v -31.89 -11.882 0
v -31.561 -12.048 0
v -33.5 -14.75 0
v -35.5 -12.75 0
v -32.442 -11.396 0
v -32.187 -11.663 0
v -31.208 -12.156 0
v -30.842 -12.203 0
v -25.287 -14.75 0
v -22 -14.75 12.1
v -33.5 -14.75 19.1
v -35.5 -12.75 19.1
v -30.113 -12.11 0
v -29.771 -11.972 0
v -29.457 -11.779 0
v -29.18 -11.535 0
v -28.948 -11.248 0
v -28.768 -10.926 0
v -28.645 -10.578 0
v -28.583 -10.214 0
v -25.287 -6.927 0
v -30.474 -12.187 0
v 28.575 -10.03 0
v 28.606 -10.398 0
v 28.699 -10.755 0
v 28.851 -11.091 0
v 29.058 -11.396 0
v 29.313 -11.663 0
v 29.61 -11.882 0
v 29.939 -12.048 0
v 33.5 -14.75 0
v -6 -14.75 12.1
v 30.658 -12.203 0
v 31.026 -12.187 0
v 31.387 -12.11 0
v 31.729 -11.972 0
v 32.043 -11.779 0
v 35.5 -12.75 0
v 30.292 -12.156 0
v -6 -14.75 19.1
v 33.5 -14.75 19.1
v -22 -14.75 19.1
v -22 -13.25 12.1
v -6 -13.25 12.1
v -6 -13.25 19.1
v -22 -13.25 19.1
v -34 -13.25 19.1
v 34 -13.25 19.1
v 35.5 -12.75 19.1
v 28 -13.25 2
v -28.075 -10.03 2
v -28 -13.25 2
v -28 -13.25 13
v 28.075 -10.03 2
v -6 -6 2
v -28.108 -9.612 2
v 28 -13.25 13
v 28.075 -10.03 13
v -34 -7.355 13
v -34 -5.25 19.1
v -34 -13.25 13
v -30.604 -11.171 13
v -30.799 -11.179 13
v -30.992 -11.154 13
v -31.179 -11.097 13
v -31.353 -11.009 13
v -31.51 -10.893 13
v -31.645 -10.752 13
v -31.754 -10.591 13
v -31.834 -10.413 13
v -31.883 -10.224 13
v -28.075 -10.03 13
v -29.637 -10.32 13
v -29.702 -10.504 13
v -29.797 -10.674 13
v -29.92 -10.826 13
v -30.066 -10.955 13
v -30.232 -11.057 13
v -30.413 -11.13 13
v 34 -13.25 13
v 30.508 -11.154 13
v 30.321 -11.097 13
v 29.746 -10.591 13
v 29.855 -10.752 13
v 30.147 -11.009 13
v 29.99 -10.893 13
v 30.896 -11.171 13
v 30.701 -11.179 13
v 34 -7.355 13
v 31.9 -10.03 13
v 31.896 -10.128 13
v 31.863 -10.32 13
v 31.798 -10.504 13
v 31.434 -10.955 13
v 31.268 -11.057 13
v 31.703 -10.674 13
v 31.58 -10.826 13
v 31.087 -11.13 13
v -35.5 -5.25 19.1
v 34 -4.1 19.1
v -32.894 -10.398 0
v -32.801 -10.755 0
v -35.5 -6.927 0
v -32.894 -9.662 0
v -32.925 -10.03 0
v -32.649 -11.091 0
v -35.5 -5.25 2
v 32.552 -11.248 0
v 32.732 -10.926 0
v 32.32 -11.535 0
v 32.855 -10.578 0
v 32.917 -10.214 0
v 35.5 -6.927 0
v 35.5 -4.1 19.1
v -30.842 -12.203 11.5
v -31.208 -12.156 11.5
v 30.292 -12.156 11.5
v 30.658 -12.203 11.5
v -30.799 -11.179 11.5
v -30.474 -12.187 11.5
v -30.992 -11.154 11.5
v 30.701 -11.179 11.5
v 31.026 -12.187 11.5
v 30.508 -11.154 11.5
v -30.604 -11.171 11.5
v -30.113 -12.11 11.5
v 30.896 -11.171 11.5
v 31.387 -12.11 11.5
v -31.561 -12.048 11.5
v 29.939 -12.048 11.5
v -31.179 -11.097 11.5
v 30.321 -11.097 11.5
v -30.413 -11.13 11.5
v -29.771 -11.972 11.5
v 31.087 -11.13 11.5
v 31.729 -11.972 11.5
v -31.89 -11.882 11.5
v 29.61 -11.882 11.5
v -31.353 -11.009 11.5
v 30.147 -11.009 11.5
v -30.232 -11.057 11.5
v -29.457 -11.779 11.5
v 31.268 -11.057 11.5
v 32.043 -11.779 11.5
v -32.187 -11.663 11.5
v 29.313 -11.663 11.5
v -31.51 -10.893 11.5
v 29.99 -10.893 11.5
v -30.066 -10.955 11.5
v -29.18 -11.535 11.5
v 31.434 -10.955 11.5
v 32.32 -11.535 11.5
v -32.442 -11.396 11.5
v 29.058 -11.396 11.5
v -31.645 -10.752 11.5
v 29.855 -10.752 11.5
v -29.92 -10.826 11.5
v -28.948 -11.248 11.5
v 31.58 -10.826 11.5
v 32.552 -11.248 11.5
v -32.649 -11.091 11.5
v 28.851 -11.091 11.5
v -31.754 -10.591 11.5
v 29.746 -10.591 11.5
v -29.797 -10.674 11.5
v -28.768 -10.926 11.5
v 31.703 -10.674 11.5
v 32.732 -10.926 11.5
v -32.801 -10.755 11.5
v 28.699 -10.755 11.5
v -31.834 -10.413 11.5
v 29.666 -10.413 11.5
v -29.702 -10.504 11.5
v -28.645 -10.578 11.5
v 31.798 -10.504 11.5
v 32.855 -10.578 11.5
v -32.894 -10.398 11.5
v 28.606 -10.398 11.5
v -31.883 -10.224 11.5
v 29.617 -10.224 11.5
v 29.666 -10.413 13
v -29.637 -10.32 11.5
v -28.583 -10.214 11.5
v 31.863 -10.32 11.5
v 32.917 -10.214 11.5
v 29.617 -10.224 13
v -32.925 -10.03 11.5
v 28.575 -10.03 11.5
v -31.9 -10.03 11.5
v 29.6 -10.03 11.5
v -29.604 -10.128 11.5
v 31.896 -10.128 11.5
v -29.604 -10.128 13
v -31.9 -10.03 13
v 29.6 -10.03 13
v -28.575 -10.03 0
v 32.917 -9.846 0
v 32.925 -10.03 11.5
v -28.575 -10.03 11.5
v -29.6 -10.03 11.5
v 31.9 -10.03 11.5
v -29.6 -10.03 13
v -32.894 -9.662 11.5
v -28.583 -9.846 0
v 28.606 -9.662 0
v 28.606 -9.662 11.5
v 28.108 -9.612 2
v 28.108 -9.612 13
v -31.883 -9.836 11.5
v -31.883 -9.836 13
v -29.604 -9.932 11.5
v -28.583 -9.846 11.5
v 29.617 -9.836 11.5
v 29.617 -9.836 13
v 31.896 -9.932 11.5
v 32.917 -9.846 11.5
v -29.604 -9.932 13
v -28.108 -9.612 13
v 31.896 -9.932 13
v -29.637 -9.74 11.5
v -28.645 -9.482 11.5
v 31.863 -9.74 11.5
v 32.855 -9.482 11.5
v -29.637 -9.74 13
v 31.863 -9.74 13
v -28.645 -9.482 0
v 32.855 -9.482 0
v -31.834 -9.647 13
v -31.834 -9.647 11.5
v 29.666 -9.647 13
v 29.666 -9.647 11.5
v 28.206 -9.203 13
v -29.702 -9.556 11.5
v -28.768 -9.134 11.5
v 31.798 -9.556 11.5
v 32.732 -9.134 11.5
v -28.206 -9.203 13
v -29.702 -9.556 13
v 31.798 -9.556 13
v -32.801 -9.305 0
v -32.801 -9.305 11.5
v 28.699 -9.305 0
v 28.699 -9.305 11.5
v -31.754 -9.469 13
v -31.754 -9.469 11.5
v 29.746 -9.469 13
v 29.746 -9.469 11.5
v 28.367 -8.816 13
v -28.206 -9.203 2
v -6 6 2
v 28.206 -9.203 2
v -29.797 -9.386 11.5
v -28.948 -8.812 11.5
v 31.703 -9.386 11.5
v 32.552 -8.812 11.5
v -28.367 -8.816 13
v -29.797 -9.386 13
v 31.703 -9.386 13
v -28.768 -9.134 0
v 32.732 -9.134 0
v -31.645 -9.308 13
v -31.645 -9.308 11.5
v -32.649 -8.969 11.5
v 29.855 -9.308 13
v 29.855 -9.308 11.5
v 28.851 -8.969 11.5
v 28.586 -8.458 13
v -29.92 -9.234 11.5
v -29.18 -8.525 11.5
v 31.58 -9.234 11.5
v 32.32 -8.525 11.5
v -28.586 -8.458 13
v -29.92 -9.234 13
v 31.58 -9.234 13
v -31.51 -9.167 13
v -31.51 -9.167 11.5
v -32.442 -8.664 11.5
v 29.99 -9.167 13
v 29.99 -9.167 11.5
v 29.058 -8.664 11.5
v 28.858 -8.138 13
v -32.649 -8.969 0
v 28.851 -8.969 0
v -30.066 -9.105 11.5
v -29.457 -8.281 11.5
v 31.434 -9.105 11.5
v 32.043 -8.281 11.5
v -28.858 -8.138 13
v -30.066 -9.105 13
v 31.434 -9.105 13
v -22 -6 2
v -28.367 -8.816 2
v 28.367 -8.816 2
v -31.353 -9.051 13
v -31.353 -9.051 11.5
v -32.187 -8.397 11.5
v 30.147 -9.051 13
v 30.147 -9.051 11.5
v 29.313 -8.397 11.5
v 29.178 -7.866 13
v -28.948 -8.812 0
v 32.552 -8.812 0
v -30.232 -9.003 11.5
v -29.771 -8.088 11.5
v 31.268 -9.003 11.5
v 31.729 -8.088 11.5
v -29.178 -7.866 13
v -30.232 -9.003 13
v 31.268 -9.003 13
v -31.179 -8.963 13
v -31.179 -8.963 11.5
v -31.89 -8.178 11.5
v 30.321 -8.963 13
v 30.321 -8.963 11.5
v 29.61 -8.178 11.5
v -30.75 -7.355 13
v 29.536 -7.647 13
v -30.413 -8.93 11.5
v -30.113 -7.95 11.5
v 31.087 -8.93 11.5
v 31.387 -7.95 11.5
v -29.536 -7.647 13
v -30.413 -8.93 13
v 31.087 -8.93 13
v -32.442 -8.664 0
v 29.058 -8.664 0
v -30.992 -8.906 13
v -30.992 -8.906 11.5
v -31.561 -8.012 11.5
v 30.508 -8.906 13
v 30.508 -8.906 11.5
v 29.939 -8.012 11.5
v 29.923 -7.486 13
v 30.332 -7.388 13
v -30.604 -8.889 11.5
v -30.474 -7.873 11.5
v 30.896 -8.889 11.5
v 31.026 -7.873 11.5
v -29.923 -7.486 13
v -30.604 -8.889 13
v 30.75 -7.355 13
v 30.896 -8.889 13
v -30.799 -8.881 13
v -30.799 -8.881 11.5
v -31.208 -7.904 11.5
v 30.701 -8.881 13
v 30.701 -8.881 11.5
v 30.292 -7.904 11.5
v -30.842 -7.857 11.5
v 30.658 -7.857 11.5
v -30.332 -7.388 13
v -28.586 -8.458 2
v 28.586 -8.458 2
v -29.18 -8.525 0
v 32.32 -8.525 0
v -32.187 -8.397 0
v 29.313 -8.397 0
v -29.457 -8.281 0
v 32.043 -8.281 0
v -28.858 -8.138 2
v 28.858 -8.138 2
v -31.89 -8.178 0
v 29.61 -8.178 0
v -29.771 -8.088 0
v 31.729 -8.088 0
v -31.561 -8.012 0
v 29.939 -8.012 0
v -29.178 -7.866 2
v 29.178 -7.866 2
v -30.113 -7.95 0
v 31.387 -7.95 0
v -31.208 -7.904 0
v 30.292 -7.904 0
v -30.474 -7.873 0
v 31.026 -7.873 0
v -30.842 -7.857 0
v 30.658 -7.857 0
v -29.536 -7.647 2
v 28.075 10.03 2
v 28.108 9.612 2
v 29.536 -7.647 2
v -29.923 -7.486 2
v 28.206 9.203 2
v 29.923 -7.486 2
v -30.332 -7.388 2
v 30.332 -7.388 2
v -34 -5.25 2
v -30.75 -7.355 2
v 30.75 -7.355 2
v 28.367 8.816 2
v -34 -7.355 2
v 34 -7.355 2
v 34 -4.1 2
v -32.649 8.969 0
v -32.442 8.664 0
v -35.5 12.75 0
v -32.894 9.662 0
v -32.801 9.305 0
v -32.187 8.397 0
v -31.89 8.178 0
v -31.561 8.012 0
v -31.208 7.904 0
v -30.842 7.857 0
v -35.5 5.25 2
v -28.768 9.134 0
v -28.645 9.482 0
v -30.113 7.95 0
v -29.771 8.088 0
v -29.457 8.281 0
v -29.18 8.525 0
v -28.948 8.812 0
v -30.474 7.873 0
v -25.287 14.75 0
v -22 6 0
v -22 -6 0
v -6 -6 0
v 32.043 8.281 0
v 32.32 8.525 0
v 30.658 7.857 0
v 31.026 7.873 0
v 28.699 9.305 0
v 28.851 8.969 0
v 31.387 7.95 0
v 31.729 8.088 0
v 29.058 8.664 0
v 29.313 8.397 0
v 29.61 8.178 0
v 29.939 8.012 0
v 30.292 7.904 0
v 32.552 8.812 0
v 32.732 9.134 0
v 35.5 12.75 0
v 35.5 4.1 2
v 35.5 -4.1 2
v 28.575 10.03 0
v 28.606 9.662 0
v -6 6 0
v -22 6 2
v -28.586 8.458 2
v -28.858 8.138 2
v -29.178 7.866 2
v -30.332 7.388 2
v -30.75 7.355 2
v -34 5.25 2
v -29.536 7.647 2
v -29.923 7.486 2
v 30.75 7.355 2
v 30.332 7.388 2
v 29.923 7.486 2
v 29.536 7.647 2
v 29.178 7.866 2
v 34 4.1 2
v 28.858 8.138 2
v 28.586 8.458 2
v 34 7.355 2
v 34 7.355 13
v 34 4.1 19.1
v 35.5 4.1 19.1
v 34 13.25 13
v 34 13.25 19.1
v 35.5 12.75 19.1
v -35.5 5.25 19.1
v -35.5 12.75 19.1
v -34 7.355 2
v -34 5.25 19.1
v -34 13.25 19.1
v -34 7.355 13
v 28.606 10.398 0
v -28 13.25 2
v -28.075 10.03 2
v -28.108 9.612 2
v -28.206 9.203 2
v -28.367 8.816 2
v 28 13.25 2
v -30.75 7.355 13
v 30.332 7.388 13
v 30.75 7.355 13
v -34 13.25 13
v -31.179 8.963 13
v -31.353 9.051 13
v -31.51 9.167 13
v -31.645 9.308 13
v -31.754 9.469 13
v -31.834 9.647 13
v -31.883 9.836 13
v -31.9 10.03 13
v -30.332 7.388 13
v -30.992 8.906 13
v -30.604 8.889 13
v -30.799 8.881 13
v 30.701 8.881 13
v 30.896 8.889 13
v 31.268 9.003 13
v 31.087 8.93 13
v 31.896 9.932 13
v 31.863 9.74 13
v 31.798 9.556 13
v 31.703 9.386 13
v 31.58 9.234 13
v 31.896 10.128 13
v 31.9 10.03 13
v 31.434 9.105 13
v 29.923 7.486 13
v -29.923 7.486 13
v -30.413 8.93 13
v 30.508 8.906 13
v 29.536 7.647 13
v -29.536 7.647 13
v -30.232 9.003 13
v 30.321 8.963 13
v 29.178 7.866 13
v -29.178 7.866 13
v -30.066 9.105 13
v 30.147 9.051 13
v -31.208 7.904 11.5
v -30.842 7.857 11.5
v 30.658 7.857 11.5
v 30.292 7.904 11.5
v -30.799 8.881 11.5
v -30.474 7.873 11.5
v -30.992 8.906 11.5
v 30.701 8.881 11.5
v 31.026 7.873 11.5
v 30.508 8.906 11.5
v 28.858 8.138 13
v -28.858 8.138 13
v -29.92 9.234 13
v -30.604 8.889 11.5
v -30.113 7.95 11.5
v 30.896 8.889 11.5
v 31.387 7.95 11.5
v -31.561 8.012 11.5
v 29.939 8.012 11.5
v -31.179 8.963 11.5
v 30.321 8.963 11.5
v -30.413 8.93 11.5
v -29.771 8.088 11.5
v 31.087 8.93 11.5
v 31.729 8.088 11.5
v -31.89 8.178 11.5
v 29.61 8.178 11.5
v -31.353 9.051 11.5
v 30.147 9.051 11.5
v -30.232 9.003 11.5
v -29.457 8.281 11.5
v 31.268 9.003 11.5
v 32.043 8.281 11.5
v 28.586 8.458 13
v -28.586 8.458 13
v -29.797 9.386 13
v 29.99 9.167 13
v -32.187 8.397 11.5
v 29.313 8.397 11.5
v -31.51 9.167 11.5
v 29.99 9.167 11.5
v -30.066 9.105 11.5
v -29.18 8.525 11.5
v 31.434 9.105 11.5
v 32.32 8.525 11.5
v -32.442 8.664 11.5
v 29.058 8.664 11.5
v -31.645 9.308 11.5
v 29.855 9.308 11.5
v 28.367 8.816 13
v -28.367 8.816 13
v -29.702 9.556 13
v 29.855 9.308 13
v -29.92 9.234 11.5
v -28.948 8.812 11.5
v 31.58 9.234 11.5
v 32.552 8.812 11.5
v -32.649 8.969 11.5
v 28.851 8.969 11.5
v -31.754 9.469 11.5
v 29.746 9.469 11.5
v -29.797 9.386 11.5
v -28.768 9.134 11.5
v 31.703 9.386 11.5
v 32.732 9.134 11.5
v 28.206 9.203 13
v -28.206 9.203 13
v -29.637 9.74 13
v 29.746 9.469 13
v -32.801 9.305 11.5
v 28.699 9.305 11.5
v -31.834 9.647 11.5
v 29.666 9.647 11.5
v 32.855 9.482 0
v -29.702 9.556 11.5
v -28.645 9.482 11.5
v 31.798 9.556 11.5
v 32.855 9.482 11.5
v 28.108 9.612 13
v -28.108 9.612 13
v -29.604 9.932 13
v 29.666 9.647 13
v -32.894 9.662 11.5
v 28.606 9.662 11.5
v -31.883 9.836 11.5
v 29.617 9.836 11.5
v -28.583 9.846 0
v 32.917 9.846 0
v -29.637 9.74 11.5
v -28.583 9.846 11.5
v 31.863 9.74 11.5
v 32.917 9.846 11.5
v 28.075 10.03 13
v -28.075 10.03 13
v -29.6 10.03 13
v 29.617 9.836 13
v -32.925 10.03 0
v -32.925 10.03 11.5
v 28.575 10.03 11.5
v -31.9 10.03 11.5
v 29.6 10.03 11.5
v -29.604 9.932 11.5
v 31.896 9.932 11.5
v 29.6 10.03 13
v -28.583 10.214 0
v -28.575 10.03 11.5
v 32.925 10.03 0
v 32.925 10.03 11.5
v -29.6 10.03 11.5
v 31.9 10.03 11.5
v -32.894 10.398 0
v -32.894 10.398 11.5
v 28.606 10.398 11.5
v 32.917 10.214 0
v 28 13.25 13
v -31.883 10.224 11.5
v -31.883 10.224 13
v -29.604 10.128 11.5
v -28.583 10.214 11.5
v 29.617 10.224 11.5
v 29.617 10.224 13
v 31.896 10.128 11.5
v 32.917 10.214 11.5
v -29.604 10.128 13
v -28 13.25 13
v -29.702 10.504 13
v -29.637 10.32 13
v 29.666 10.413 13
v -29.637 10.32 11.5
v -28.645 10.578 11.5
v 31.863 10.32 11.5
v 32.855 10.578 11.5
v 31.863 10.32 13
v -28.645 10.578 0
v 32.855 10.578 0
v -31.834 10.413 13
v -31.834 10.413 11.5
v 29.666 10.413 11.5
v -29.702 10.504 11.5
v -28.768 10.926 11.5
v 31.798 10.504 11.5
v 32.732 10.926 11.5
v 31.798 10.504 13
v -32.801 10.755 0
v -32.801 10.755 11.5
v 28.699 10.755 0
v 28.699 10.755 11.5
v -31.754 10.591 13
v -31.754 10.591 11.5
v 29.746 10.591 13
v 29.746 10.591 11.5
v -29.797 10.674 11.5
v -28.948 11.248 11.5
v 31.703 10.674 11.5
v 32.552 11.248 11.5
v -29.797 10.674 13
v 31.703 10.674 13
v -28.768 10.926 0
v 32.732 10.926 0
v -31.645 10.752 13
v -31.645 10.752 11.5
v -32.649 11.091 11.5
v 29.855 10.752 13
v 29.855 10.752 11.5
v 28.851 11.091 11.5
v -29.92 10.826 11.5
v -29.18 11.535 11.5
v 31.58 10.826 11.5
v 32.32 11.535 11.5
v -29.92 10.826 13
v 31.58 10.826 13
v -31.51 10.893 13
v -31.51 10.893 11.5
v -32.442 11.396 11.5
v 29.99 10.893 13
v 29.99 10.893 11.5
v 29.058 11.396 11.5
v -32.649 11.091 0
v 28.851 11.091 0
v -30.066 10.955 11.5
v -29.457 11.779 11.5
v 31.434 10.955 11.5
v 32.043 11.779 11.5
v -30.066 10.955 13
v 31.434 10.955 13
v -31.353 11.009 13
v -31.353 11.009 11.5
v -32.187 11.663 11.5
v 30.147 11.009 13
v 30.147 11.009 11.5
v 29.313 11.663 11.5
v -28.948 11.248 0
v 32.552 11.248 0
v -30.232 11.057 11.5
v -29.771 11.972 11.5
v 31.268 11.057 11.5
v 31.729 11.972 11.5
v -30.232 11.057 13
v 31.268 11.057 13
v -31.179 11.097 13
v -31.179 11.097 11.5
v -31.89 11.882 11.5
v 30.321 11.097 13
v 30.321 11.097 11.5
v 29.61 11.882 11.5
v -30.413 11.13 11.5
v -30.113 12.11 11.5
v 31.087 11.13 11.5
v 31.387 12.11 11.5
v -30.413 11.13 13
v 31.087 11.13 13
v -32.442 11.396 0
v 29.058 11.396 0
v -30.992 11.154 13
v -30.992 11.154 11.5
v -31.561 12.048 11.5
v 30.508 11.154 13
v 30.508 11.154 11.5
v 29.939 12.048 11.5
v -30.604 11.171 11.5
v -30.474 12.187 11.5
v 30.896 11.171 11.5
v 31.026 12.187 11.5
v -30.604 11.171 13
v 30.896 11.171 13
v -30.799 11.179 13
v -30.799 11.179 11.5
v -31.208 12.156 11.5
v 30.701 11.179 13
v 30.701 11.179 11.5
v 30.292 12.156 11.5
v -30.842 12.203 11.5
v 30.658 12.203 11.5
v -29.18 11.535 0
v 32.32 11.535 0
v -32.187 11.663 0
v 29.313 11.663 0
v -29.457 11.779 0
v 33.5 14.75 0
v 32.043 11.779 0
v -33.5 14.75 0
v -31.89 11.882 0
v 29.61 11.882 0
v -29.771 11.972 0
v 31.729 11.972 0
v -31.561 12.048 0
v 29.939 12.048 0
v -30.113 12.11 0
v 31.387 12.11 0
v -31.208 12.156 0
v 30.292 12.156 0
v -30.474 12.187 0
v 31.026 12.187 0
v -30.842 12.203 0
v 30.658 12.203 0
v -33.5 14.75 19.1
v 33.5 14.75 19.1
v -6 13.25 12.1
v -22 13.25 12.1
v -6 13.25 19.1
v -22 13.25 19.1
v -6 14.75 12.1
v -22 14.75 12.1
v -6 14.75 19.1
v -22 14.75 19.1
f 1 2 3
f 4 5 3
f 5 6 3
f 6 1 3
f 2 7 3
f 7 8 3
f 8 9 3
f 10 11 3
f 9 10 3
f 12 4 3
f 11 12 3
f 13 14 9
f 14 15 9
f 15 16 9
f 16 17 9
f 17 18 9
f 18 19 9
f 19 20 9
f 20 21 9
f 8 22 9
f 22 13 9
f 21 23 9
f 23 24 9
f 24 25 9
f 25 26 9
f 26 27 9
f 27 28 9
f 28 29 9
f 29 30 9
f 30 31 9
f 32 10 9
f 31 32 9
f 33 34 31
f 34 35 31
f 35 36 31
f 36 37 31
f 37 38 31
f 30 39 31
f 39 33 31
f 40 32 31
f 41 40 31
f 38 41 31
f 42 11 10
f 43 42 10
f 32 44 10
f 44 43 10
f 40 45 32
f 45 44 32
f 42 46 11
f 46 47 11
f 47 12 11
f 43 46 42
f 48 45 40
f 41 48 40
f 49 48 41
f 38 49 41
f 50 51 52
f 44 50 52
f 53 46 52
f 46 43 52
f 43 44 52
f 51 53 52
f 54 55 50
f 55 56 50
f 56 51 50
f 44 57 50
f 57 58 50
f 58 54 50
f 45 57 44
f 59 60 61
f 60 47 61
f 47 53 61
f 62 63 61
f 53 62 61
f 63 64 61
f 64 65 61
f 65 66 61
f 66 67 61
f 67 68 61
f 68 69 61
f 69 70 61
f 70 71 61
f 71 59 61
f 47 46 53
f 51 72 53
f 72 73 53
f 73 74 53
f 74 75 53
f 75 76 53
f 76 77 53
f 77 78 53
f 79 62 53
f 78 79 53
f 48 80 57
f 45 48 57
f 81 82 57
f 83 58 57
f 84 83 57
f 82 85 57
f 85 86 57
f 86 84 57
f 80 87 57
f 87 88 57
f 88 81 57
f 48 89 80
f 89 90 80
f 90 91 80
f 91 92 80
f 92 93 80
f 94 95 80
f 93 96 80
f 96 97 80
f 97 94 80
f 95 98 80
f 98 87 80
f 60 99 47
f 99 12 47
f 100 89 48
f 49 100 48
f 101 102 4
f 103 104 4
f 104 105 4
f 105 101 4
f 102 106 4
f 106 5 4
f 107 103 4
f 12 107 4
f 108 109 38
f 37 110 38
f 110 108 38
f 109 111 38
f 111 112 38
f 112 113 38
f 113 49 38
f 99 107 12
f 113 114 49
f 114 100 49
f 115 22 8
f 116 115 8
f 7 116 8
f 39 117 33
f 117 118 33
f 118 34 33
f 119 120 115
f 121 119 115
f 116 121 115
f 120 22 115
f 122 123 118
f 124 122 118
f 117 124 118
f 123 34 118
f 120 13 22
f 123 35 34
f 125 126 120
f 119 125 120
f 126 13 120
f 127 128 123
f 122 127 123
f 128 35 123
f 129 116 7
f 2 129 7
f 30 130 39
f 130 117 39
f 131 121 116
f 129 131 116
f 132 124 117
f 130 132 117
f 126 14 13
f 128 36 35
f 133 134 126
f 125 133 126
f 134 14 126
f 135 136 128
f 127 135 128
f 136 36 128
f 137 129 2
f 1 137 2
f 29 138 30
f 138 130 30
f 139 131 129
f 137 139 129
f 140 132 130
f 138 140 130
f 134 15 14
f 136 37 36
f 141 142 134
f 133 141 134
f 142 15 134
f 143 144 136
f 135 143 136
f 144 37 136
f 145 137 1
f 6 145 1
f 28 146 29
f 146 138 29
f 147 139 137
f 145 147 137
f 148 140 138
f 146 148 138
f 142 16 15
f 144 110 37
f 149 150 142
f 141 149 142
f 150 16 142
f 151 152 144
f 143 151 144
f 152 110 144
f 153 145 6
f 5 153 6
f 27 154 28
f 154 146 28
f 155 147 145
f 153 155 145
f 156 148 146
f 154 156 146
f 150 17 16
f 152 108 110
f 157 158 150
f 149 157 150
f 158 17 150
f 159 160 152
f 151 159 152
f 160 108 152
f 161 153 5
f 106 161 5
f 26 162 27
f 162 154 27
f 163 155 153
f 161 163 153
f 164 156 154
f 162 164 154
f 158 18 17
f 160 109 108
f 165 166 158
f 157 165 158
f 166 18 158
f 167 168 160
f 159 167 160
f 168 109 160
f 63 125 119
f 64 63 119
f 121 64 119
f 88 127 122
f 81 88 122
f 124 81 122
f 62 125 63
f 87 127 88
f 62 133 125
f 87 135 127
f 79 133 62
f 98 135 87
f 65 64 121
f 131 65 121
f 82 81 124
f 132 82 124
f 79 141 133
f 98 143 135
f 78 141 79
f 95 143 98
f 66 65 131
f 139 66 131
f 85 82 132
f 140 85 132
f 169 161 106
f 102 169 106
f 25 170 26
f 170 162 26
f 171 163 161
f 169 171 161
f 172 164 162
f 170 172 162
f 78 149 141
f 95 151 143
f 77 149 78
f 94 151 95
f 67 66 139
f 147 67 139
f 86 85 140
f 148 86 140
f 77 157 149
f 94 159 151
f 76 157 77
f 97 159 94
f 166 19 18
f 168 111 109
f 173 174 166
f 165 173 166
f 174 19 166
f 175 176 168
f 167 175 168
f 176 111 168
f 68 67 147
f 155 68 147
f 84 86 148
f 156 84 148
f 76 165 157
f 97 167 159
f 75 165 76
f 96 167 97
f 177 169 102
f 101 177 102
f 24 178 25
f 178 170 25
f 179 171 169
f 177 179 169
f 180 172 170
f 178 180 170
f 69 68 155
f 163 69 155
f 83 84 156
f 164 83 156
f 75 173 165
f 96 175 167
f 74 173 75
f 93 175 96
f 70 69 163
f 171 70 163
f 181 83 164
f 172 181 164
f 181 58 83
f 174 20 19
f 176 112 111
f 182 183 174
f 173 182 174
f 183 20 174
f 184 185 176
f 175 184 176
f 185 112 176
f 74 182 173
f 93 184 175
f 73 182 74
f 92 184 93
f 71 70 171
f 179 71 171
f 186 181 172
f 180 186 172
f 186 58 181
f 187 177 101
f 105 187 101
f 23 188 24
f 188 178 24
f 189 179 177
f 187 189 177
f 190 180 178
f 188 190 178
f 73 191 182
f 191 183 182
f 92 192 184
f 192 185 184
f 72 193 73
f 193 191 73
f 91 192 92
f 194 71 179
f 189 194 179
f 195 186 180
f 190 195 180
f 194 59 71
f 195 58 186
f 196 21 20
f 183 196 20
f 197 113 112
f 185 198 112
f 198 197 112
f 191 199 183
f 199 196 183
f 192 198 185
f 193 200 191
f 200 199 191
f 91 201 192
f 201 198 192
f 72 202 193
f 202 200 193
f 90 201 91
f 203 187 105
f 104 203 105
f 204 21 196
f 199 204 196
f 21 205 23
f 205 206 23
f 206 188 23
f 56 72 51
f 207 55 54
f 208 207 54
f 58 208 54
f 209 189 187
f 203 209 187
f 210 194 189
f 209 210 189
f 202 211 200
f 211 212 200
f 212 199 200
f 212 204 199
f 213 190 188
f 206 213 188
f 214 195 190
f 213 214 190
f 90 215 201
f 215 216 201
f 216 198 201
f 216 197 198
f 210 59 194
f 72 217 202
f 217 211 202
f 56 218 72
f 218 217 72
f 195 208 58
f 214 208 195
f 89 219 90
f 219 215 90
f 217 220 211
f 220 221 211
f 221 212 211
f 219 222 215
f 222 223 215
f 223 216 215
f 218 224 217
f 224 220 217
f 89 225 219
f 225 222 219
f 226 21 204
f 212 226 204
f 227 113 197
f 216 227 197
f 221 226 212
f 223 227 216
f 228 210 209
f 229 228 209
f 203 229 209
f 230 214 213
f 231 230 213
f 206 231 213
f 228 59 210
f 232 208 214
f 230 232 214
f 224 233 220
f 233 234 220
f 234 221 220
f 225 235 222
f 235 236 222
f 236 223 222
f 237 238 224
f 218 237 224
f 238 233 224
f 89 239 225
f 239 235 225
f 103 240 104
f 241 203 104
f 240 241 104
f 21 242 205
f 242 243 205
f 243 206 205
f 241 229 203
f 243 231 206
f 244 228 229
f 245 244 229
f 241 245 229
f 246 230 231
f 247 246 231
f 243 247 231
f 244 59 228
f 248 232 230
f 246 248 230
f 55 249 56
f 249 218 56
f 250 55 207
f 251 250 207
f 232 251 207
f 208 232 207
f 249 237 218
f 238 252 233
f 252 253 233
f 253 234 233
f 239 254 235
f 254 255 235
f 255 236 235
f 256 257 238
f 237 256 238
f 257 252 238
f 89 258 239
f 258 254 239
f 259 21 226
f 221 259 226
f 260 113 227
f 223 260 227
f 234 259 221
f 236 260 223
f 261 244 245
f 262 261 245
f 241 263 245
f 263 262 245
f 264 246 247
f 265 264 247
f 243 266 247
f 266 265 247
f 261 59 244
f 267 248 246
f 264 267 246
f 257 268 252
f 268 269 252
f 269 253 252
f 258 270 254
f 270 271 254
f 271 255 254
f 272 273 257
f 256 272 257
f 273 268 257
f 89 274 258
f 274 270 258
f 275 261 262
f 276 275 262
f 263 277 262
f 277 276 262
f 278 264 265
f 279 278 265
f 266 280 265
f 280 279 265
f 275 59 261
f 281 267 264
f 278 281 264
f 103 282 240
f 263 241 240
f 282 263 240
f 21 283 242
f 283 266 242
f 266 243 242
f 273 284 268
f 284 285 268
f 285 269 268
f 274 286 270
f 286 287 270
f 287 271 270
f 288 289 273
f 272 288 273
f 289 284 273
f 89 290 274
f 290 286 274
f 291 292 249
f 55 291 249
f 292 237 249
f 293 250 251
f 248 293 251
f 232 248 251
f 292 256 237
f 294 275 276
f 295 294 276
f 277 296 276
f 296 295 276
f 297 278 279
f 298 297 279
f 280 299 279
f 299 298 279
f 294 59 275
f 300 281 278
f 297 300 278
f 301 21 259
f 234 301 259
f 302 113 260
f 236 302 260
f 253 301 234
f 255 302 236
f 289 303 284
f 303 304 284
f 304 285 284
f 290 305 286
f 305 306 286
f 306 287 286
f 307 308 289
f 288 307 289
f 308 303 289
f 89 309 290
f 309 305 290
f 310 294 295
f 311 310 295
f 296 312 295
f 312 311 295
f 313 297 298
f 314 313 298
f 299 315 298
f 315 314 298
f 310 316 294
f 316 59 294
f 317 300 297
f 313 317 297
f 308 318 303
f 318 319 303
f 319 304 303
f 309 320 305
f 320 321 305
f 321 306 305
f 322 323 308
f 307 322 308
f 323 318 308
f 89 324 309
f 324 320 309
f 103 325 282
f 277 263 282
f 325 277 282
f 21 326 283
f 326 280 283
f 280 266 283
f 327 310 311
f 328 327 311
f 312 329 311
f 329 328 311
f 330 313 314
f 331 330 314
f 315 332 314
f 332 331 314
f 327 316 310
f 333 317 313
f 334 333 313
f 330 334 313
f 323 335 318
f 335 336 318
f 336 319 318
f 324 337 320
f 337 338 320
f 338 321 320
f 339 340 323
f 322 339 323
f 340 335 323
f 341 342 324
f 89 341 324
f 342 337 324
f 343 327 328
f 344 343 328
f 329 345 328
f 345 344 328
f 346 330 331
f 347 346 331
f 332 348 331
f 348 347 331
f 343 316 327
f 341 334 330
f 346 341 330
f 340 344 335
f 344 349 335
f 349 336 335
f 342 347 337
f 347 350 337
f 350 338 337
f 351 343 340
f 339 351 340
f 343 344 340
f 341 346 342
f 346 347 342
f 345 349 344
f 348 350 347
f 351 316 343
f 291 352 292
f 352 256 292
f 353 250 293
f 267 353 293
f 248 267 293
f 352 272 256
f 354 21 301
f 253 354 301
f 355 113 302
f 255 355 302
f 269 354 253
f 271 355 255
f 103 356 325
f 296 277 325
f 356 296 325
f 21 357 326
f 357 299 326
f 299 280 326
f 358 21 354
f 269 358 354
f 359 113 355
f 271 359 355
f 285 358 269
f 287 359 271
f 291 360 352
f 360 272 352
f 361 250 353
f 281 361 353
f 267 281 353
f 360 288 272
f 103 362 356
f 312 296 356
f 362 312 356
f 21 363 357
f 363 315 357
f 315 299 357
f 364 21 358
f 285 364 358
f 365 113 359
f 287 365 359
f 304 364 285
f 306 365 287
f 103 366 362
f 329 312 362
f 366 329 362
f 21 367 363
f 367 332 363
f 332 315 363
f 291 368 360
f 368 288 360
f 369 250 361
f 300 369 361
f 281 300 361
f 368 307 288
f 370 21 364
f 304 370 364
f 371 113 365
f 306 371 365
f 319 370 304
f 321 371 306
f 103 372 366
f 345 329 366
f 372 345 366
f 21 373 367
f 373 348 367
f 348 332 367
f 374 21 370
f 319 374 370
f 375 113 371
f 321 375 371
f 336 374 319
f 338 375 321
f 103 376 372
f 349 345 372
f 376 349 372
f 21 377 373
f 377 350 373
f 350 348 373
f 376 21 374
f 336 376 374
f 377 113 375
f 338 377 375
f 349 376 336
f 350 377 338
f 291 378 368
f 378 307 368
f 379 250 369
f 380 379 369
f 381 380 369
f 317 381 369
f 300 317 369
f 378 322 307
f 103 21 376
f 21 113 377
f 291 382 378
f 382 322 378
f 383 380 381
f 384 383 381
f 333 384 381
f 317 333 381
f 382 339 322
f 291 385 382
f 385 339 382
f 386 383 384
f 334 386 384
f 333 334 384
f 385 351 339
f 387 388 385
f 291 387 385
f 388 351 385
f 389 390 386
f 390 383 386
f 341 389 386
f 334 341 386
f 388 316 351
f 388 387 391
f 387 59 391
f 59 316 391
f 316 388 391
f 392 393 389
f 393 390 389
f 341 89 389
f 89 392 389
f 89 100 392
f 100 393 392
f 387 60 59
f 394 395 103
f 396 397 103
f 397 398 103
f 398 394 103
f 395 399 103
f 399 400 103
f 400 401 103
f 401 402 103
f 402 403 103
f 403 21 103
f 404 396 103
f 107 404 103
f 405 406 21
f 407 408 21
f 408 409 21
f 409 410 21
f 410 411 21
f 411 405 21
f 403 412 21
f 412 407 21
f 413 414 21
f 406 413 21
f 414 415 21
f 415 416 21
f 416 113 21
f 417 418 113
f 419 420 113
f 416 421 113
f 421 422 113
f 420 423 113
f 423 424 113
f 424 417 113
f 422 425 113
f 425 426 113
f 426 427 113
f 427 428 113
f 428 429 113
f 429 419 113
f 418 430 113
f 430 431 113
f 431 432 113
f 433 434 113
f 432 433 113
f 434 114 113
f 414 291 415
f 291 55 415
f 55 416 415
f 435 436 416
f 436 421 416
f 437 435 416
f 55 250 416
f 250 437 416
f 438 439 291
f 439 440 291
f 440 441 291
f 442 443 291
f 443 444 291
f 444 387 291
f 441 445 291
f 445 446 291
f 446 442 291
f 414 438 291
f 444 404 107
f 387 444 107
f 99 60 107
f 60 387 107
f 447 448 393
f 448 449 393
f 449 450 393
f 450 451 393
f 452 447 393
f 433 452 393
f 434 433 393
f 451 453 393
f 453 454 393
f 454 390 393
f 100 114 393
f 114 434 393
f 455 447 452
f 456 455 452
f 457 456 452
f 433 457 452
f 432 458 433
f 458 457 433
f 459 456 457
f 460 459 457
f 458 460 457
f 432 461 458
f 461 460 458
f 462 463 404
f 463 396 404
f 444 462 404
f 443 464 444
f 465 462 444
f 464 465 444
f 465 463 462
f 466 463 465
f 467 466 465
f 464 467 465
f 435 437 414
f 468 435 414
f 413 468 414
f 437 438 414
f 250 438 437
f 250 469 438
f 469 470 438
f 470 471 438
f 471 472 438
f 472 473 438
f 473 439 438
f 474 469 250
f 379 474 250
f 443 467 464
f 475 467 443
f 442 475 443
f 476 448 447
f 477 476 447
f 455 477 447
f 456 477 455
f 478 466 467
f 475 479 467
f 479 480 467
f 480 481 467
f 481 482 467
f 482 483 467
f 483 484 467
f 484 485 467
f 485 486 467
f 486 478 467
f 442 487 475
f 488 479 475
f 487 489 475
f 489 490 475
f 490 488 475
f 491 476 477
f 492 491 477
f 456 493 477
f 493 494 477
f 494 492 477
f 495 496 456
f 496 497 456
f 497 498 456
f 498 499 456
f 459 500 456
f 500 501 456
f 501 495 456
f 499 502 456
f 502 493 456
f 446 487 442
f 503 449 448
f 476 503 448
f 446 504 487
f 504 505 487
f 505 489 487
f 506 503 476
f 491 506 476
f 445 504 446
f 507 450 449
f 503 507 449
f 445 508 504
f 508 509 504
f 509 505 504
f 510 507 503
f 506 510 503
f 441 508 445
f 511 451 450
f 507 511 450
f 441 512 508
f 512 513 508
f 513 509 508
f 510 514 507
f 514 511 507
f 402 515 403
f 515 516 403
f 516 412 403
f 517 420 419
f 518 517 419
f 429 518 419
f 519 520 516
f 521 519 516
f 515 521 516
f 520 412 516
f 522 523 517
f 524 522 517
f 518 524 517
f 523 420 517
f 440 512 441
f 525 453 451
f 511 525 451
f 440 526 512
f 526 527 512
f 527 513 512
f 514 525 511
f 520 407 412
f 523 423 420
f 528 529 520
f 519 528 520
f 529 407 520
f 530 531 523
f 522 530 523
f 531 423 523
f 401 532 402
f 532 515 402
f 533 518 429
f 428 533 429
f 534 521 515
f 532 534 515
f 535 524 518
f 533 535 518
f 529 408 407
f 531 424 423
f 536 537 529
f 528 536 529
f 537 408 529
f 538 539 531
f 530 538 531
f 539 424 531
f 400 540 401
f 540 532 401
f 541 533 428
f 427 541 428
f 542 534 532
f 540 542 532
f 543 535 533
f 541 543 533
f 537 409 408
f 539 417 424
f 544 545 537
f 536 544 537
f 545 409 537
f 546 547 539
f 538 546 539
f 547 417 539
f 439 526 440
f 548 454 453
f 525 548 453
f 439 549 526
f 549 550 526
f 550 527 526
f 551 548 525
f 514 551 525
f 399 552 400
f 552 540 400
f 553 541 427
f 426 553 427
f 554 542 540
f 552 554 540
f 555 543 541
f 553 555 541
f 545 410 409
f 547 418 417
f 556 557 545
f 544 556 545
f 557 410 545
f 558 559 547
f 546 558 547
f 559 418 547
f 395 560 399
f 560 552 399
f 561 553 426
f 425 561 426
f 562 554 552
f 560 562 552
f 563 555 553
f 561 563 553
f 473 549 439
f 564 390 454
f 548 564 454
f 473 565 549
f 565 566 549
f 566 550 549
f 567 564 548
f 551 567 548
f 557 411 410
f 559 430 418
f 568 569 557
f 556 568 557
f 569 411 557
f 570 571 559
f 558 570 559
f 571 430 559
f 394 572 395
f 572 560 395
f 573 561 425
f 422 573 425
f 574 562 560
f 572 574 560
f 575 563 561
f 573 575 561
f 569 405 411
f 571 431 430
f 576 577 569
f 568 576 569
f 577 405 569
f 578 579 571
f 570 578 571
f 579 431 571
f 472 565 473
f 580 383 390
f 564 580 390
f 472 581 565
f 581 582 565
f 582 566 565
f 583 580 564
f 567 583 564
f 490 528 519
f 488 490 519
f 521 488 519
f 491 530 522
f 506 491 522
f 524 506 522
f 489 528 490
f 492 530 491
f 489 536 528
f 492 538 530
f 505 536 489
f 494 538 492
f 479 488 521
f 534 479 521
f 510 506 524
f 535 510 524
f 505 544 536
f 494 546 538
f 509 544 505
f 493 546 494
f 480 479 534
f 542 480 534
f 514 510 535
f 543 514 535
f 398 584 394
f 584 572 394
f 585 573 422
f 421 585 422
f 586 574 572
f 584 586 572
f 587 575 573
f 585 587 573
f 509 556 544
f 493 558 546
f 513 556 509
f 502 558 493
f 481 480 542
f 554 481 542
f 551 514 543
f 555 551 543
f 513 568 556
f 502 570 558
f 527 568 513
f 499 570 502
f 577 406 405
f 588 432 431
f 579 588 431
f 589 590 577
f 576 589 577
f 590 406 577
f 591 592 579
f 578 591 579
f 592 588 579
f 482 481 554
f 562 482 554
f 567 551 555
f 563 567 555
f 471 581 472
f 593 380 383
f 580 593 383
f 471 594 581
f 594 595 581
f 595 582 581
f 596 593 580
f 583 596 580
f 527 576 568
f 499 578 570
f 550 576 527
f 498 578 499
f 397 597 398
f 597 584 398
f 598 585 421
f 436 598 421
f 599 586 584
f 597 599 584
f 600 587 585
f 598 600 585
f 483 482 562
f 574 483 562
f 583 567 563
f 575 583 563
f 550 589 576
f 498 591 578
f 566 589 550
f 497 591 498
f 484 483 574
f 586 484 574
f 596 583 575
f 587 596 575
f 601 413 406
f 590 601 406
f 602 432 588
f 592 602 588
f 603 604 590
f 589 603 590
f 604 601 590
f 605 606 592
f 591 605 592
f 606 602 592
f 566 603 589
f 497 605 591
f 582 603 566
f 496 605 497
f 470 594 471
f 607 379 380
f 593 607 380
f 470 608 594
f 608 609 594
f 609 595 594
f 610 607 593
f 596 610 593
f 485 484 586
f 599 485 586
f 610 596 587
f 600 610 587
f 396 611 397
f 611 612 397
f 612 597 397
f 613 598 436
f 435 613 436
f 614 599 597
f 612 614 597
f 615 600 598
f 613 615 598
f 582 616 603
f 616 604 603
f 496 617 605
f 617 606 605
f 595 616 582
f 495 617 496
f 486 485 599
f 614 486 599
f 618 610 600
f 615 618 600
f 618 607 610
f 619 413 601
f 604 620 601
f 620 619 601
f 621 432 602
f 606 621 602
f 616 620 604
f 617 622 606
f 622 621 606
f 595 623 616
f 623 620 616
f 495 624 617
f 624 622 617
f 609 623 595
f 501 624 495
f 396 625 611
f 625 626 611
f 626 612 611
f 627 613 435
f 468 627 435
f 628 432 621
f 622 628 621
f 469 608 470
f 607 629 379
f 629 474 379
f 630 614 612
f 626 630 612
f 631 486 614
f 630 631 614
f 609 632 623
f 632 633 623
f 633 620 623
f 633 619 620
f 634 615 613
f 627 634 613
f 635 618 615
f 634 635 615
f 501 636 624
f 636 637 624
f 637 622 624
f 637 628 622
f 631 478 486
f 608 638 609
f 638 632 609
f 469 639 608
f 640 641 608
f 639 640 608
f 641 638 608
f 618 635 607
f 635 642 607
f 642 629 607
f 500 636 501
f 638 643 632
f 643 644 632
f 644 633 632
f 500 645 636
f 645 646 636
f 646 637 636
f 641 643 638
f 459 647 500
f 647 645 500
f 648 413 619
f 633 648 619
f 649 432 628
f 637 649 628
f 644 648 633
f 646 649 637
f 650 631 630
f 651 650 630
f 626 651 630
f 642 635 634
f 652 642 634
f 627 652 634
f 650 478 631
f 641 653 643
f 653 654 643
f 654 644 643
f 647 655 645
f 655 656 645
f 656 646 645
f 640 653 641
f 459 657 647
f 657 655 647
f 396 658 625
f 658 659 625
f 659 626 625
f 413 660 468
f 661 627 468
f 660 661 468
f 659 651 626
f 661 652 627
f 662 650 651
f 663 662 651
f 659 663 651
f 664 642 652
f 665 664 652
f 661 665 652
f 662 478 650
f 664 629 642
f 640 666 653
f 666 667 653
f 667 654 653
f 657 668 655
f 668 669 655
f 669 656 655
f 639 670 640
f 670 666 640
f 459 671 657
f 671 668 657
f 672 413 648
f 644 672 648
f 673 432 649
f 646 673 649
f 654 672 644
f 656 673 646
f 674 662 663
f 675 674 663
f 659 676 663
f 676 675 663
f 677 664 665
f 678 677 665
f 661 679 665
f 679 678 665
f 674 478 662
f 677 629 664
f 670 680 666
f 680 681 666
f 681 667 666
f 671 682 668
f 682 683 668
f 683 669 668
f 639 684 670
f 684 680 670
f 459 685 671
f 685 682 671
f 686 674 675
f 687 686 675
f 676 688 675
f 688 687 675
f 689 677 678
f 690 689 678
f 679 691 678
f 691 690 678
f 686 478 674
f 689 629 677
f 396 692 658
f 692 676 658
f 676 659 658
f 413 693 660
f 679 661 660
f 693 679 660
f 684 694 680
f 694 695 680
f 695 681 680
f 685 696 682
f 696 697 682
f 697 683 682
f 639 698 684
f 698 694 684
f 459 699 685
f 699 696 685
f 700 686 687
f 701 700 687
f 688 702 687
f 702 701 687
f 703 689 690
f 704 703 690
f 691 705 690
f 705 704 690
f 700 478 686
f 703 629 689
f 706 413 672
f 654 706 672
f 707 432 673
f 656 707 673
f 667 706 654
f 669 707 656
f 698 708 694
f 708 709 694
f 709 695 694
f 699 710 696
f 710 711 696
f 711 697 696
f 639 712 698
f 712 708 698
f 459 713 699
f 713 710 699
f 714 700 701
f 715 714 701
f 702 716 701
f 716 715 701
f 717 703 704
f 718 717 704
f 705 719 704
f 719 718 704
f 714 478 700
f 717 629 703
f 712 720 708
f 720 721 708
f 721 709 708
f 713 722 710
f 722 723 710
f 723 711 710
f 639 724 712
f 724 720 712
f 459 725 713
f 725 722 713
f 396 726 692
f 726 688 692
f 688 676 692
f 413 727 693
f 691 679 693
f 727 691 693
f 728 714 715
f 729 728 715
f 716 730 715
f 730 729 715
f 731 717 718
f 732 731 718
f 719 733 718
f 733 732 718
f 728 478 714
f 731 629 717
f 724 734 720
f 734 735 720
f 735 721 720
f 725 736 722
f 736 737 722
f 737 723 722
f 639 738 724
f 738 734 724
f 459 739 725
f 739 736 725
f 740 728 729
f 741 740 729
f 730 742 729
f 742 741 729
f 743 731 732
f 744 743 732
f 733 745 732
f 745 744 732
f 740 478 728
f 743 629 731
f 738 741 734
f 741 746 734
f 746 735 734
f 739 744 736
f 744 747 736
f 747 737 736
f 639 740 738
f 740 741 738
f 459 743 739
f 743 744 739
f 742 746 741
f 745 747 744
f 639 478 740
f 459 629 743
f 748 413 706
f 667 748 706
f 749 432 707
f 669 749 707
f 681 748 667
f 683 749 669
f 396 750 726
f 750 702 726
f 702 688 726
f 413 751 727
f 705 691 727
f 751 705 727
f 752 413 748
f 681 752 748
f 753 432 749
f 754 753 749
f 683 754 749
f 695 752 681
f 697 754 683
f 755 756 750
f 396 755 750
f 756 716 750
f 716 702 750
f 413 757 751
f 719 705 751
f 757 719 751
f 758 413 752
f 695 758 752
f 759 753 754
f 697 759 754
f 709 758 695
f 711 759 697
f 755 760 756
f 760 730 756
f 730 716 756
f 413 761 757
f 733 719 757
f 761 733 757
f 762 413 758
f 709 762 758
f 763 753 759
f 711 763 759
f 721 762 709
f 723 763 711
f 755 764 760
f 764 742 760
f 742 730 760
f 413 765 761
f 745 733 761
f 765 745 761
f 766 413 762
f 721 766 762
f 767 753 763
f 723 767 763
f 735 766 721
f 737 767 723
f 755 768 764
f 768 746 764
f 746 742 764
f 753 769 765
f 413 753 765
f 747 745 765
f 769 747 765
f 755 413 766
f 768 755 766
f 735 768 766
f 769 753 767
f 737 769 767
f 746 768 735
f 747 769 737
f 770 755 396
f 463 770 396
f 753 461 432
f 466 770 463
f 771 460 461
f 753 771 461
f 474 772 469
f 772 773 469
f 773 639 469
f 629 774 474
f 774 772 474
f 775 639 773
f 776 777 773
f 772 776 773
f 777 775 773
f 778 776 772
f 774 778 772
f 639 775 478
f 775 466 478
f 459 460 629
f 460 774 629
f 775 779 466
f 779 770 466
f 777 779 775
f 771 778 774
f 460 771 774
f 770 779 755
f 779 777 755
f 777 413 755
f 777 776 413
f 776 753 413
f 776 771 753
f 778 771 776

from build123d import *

# Parameters (mm, degrees)
SKETCH1_W           = 71
SKETCH1_H           = 29.5
SKETCH1_W_2         = 16
SKETCH1_H_2         = 12
BOSS_EXTRUDE2_DEPTH = 2
BOSS_EXTRUDE3_DEPTH = 17.1
SKETCH3_W           = 16
SKETCH3_H           = 7
CUT_EXTRUDE1_DEPTH  = 50.953077983
CHAMFER1_SIZE       = 2
BOSS_EXTRUDE4_DEPTH = 11
SKETCH8_R           = 1.15
CUT_EXTRUDE3_DEPTH  = 43.925778968
SKETCH9_R           = 2.175
CUT_EXTRUDE4_DEPTH  = 11.5


with BuildPart() as part:
    # Sketch1 → Boss-Extrude2 (new body)
    with BuildSketch(Plane.XY):
        Rectangle(SKETCH1_W, SKETCH1_H)
        with Locations((-14, 0)):
            Rectangle(SKETCH1_W_2, SKETCH1_H_2, mode=Mode.SUBTRACT)
    extrude(amount=BOSS_EXTRUDE2_DEPTH)

    # Sketch2 → Boss-Extrude3 (add)
    with BuildSketch(Plane.XY.offset(2)):
        Polygon((34, 13.25), (34, 4.1), (35.5, 4.1), (35.5, 14.75), (-35.5, 14.75), (-35.5, 5.25), (-34, 5.25), (-34, 13.25), align=None)
        Polygon((-34, -13.25), (34, -13.25), (34, -4.1), (35.5, -4.1), (35.5, -14.75), (-35.5, -14.75), (-35.5, -5.25), (-34, -5.25), align=None)
    extrude(amount=BOSS_EXTRUDE3_DEPTH)

    # Sketch3 → Cut-Extrude1 (cut, through all)
    with BuildSketch(Plane.XZ.offset(14.75)):
        with Locations((-14, 15.6)):
            Rectangle(SKETCH3_W, SKETCH3_H)
    extrude(amount=-CUT_EXTRUDE1_DEPTH, mode=Mode.SUBTRACT)

    # Chamfer1
    chamfer1_edges = [part.edges().sort_by_distance(p)[0] for p in [
        (-35.5, 14.75, 9.55),
        (35.5, 14.75, 9.55),
        (35.5, -14.75, 9.55),
        (-35.5, -14.75, 9.55),
    ]]
    chamfer(chamfer1_edges, length=CHAMFER1_SIZE)

    # Sketch7 → Boss-Extrude4 (add)
    with BuildSketch(Plane.XY.offset(2)):
        with BuildLine():
            Line((-34, 13.25), (-34, 7.355))
            Line((-34, 7.355), (-30.75, 7.355))
            ThreePointArc((-30.75, 7.355), (-28.85848936, 8.13848936), (-28.075, 10.03))
            Line((-28.075, 10.03), (-28, 13.25))
            Line((-28, 13.25), (-34, 13.25))
        make_face()
        with BuildLine():
            Line((34, 13.25), (28, 13.25))
            Line((28, 13.25), (28.075, 10.03))
            ThreePointArc((28.075, 10.03), (28.85848936, 8.13848936), (30.75, 7.355))
            Line((30.75, 7.355), (34, 7.355))
            Line((34, 7.355), (34, 13.25))
        make_face()
        with BuildLine():
            Line((-34, -13.25), (-28, -13.25))
            Line((-28, -13.25), (-28.075, -10.03))
            ThreePointArc((-28.075, -10.03), (-28.85848936, -8.13848936), (-30.75, -7.355))
            Line((-30.75, -7.355), (-34, -7.355))
            Line((-34, -7.355), (-34, -13.25))
        make_face()
        with BuildLine():
            Line((34, -13.25), (34, -7.355))
            Line((34, -7.355), (30.75, -7.355))
            ThreePointArc((30.75, -7.355), (28.85848936, -8.13848936), (28.075, -10.03))
            Line((28.075, -10.03), (28, -13.25))
            Line((28, -13.25), (34, -13.25))
        make_face()
    extrude(amount=BOSS_EXTRUDE4_DEPTH)

    # Sketch8 → Cut-Extrude3 (cut, through all)
    with BuildSketch(Plane(origin=(0, 0, 0), x_dir=(-1, 0, 0), z_dir=(0, 0, -1))):
        with Locations((30.75, 10.03)):
            Circle(SKETCH8_R)
        with Locations(Location((-30.75, 10.03, 0), (0, 0, 180))):
            Circle(SKETCH8_R)
        with Locations((-30.75, -10.03)):
            Circle(SKETCH8_R)
        with Locations(Location((30.75, -10.03, 0), (0, 0, 180))):
            Circle(SKETCH8_R)
    extrude(amount=-CUT_EXTRUDE3_DEPTH, mode=Mode.SUBTRACT)

    # Sketch9 → Cut-Extrude4 (cut)
    with BuildSketch(Plane(origin=(0, 0, 0), x_dir=(-1, 0, 0), z_dir=(0, 0, -1))):
        with Locations((30.75, 10.03)):
            Circle(SKETCH9_R)
        with Locations(Location((-30.75, 10.03, 0), (0, 0, 180))):
            Circle(SKETCH9_R)
        with Locations((-30.75, -10.03)):
            Circle(SKETCH9_R)
        with Locations(Location((30.75, -10.03, 0), (0, 0, 180))):
            Circle(SKETCH9_R)
    extrude(amount=-CUT_EXTRUDE4_DEPTH, mode=Mode.SUBTRACT)


solid = part.part
